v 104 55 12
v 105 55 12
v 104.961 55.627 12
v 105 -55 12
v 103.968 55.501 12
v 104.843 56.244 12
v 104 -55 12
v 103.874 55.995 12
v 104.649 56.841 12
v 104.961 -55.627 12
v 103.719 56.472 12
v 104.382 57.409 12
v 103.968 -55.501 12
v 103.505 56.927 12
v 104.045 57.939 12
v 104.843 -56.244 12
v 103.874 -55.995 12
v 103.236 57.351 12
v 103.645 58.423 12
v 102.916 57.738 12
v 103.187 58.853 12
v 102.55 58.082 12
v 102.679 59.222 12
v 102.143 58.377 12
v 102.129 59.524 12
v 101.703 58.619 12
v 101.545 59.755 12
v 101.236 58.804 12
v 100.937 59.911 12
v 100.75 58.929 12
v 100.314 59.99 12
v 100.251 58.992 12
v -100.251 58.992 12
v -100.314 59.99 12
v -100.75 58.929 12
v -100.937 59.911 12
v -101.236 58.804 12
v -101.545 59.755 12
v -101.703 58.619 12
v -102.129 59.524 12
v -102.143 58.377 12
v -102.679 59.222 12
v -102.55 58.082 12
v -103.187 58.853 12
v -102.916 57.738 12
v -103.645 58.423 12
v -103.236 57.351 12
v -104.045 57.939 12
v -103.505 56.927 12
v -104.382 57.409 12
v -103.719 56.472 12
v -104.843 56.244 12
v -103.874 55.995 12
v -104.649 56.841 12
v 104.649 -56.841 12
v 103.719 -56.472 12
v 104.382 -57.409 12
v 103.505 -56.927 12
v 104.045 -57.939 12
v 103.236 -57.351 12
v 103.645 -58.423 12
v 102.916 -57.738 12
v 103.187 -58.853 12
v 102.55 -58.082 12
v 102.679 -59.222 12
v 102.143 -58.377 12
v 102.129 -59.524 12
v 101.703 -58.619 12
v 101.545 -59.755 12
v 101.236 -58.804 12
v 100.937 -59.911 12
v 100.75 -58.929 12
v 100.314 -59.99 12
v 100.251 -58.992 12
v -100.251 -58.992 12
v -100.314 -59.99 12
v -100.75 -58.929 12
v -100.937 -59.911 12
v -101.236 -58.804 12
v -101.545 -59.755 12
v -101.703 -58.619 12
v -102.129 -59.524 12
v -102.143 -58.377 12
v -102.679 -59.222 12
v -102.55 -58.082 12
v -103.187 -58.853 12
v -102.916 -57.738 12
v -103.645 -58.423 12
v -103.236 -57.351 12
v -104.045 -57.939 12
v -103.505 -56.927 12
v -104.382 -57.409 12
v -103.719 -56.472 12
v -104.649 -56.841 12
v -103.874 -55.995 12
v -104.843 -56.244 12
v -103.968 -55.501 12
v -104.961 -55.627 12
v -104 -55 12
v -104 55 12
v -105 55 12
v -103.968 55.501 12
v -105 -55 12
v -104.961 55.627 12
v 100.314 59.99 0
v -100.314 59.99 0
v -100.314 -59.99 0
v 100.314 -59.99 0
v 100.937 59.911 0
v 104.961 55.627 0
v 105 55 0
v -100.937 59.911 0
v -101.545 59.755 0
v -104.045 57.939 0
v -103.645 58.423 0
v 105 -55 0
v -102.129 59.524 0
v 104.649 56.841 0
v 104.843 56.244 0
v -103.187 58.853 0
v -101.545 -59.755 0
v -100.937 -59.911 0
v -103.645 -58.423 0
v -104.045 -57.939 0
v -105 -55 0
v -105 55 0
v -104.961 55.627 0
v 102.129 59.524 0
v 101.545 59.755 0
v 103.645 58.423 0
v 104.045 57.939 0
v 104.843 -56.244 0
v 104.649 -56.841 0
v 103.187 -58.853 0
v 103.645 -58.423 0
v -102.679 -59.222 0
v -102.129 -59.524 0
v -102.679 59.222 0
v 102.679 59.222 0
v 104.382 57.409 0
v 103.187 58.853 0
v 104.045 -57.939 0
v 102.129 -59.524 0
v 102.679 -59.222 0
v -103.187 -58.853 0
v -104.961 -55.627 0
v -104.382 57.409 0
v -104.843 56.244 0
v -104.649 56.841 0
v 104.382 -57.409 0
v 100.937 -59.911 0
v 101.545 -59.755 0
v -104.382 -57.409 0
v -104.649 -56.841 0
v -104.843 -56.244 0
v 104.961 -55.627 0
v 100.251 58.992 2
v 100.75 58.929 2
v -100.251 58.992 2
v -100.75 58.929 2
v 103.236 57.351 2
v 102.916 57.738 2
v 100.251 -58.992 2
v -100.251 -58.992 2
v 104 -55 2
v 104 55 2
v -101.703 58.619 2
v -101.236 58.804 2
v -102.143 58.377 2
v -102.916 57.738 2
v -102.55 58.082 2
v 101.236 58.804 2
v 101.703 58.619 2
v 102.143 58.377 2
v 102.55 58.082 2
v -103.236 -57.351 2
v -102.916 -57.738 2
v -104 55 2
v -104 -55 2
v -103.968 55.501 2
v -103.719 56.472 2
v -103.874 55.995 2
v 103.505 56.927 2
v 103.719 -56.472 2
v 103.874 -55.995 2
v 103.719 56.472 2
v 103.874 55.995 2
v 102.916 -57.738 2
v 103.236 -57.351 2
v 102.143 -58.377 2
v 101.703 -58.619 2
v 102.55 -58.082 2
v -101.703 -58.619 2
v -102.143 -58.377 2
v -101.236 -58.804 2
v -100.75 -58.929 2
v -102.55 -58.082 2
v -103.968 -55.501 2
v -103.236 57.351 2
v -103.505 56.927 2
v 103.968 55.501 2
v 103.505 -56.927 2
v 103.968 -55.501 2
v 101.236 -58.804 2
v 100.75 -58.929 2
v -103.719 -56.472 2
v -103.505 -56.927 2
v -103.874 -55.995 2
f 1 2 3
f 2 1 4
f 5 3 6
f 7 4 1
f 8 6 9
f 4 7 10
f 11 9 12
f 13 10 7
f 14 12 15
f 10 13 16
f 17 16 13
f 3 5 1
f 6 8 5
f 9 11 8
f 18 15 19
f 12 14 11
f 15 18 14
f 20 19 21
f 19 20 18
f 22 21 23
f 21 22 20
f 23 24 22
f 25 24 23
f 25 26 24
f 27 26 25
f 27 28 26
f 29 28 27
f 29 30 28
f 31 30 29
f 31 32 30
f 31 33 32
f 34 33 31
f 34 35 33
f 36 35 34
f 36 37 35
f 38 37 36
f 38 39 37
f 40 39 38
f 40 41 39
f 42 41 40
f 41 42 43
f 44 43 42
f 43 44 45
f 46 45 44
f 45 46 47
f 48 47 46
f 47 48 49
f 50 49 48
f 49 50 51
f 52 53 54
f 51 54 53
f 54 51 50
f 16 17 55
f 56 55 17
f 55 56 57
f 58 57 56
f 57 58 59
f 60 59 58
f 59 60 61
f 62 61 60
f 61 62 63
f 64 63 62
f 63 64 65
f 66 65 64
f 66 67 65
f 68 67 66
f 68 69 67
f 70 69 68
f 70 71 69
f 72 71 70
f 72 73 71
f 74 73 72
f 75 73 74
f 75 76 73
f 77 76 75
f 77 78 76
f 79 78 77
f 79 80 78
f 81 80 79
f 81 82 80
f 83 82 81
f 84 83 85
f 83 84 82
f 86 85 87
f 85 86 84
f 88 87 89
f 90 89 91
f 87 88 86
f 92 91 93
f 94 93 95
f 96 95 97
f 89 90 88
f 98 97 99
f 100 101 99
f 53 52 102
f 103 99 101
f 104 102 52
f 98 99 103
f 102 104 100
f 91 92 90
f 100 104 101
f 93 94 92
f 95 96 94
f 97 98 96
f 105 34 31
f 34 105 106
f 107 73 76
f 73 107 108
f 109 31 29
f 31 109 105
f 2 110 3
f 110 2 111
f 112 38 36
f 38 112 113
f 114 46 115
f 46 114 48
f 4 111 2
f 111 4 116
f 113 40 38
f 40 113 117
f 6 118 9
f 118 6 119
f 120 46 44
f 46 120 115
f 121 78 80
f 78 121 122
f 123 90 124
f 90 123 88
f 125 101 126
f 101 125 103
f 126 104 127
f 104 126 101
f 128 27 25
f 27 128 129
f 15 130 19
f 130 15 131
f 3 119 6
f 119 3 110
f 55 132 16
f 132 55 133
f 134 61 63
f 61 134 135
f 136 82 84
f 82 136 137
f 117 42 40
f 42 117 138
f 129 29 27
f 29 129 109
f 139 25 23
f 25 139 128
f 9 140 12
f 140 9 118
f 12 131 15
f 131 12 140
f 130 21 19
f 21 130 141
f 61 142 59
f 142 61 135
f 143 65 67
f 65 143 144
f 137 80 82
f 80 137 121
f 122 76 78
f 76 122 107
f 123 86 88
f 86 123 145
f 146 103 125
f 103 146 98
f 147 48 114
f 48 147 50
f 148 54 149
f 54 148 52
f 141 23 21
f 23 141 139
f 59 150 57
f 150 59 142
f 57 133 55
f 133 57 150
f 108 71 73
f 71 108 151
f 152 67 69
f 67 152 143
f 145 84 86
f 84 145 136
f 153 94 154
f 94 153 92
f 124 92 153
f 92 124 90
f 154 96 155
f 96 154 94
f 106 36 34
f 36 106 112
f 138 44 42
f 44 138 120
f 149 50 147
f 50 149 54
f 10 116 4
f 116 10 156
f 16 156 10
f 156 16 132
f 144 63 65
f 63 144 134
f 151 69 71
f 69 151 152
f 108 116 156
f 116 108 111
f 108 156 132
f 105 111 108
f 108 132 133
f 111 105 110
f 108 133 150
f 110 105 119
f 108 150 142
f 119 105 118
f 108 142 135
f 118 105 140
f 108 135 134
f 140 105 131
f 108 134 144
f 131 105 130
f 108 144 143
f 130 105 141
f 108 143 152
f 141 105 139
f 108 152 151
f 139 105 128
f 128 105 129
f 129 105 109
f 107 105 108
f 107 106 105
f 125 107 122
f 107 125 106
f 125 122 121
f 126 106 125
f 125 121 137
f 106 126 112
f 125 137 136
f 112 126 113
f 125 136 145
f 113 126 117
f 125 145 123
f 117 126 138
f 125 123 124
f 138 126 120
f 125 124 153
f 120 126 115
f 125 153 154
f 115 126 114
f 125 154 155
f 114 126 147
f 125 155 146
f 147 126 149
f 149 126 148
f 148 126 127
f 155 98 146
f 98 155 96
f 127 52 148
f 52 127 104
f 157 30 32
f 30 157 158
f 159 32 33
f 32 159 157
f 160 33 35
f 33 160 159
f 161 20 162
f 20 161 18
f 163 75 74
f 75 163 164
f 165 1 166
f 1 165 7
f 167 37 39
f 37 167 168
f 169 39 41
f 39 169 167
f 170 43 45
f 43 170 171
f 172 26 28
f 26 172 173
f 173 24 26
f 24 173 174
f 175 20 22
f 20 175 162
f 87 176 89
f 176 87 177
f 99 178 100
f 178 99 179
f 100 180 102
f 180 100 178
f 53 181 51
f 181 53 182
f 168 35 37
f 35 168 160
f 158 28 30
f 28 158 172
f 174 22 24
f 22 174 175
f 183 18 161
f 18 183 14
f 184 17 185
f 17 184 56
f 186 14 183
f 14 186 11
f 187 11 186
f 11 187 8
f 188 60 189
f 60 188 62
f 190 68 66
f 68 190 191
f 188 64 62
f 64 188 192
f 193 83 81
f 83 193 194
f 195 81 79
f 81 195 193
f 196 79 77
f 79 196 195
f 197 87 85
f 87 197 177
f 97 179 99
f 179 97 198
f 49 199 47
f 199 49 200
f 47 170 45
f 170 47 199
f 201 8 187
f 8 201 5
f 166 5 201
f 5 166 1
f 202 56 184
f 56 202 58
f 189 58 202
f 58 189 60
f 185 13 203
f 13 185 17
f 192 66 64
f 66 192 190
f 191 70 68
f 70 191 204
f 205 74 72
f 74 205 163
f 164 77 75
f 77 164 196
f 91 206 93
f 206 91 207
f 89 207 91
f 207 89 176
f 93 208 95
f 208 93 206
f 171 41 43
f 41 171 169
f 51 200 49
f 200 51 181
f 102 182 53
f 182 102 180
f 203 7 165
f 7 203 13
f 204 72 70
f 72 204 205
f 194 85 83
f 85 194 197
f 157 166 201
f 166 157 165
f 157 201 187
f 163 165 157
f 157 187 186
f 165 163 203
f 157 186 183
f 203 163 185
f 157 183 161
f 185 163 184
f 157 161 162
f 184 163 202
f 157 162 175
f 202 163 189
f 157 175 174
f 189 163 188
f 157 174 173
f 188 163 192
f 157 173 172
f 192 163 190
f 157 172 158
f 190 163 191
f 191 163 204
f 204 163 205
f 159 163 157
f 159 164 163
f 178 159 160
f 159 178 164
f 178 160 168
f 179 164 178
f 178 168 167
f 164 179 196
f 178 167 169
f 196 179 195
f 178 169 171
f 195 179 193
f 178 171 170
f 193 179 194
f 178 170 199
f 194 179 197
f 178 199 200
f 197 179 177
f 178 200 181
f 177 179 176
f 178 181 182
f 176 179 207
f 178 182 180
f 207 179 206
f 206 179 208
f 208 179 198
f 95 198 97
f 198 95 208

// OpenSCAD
$fn = 50;


difference() {
	union() {
		hull() {
			translate(v = [-100.0000000000, 55.0000000000, 0]) {
				cylinder(h = 12, r = 5);
			}
			translate(v = [100.0000000000, 55.0000000000, 0]) {
				cylinder(h = 12, r = 5);
			}
			translate(v = [-100.0000000000, -55.0000000000, 0]) {
				cylinder(h = 12, r = 5);
			}
			translate(v = [100.0000000000, -55.0000000000, 0]) {
				cylinder(h = 12, r = 5);
			}
		}
	}
	union() {
		translate(v = [0, 0, 2]) {
			hull() {
				translate(v = [-100.0000000000, 55.0000000000, 0]) {
					cylinder(h = 10, r = 4);
				}
				translate(v = [100.0000000000, 55.0000000000, 0]) {
					cylinder(h = 10, r = 4);
				}
				translate(v = [-100.0000000000, -55.0000000000, 0]) {
					cylinder(h = 10, r = 4);
				}
				translate(v = [100.0000000000, -55.0000000000, 0]) {
					cylinder(h = 10, r = 4);
				}
			}
		}
	}
}
